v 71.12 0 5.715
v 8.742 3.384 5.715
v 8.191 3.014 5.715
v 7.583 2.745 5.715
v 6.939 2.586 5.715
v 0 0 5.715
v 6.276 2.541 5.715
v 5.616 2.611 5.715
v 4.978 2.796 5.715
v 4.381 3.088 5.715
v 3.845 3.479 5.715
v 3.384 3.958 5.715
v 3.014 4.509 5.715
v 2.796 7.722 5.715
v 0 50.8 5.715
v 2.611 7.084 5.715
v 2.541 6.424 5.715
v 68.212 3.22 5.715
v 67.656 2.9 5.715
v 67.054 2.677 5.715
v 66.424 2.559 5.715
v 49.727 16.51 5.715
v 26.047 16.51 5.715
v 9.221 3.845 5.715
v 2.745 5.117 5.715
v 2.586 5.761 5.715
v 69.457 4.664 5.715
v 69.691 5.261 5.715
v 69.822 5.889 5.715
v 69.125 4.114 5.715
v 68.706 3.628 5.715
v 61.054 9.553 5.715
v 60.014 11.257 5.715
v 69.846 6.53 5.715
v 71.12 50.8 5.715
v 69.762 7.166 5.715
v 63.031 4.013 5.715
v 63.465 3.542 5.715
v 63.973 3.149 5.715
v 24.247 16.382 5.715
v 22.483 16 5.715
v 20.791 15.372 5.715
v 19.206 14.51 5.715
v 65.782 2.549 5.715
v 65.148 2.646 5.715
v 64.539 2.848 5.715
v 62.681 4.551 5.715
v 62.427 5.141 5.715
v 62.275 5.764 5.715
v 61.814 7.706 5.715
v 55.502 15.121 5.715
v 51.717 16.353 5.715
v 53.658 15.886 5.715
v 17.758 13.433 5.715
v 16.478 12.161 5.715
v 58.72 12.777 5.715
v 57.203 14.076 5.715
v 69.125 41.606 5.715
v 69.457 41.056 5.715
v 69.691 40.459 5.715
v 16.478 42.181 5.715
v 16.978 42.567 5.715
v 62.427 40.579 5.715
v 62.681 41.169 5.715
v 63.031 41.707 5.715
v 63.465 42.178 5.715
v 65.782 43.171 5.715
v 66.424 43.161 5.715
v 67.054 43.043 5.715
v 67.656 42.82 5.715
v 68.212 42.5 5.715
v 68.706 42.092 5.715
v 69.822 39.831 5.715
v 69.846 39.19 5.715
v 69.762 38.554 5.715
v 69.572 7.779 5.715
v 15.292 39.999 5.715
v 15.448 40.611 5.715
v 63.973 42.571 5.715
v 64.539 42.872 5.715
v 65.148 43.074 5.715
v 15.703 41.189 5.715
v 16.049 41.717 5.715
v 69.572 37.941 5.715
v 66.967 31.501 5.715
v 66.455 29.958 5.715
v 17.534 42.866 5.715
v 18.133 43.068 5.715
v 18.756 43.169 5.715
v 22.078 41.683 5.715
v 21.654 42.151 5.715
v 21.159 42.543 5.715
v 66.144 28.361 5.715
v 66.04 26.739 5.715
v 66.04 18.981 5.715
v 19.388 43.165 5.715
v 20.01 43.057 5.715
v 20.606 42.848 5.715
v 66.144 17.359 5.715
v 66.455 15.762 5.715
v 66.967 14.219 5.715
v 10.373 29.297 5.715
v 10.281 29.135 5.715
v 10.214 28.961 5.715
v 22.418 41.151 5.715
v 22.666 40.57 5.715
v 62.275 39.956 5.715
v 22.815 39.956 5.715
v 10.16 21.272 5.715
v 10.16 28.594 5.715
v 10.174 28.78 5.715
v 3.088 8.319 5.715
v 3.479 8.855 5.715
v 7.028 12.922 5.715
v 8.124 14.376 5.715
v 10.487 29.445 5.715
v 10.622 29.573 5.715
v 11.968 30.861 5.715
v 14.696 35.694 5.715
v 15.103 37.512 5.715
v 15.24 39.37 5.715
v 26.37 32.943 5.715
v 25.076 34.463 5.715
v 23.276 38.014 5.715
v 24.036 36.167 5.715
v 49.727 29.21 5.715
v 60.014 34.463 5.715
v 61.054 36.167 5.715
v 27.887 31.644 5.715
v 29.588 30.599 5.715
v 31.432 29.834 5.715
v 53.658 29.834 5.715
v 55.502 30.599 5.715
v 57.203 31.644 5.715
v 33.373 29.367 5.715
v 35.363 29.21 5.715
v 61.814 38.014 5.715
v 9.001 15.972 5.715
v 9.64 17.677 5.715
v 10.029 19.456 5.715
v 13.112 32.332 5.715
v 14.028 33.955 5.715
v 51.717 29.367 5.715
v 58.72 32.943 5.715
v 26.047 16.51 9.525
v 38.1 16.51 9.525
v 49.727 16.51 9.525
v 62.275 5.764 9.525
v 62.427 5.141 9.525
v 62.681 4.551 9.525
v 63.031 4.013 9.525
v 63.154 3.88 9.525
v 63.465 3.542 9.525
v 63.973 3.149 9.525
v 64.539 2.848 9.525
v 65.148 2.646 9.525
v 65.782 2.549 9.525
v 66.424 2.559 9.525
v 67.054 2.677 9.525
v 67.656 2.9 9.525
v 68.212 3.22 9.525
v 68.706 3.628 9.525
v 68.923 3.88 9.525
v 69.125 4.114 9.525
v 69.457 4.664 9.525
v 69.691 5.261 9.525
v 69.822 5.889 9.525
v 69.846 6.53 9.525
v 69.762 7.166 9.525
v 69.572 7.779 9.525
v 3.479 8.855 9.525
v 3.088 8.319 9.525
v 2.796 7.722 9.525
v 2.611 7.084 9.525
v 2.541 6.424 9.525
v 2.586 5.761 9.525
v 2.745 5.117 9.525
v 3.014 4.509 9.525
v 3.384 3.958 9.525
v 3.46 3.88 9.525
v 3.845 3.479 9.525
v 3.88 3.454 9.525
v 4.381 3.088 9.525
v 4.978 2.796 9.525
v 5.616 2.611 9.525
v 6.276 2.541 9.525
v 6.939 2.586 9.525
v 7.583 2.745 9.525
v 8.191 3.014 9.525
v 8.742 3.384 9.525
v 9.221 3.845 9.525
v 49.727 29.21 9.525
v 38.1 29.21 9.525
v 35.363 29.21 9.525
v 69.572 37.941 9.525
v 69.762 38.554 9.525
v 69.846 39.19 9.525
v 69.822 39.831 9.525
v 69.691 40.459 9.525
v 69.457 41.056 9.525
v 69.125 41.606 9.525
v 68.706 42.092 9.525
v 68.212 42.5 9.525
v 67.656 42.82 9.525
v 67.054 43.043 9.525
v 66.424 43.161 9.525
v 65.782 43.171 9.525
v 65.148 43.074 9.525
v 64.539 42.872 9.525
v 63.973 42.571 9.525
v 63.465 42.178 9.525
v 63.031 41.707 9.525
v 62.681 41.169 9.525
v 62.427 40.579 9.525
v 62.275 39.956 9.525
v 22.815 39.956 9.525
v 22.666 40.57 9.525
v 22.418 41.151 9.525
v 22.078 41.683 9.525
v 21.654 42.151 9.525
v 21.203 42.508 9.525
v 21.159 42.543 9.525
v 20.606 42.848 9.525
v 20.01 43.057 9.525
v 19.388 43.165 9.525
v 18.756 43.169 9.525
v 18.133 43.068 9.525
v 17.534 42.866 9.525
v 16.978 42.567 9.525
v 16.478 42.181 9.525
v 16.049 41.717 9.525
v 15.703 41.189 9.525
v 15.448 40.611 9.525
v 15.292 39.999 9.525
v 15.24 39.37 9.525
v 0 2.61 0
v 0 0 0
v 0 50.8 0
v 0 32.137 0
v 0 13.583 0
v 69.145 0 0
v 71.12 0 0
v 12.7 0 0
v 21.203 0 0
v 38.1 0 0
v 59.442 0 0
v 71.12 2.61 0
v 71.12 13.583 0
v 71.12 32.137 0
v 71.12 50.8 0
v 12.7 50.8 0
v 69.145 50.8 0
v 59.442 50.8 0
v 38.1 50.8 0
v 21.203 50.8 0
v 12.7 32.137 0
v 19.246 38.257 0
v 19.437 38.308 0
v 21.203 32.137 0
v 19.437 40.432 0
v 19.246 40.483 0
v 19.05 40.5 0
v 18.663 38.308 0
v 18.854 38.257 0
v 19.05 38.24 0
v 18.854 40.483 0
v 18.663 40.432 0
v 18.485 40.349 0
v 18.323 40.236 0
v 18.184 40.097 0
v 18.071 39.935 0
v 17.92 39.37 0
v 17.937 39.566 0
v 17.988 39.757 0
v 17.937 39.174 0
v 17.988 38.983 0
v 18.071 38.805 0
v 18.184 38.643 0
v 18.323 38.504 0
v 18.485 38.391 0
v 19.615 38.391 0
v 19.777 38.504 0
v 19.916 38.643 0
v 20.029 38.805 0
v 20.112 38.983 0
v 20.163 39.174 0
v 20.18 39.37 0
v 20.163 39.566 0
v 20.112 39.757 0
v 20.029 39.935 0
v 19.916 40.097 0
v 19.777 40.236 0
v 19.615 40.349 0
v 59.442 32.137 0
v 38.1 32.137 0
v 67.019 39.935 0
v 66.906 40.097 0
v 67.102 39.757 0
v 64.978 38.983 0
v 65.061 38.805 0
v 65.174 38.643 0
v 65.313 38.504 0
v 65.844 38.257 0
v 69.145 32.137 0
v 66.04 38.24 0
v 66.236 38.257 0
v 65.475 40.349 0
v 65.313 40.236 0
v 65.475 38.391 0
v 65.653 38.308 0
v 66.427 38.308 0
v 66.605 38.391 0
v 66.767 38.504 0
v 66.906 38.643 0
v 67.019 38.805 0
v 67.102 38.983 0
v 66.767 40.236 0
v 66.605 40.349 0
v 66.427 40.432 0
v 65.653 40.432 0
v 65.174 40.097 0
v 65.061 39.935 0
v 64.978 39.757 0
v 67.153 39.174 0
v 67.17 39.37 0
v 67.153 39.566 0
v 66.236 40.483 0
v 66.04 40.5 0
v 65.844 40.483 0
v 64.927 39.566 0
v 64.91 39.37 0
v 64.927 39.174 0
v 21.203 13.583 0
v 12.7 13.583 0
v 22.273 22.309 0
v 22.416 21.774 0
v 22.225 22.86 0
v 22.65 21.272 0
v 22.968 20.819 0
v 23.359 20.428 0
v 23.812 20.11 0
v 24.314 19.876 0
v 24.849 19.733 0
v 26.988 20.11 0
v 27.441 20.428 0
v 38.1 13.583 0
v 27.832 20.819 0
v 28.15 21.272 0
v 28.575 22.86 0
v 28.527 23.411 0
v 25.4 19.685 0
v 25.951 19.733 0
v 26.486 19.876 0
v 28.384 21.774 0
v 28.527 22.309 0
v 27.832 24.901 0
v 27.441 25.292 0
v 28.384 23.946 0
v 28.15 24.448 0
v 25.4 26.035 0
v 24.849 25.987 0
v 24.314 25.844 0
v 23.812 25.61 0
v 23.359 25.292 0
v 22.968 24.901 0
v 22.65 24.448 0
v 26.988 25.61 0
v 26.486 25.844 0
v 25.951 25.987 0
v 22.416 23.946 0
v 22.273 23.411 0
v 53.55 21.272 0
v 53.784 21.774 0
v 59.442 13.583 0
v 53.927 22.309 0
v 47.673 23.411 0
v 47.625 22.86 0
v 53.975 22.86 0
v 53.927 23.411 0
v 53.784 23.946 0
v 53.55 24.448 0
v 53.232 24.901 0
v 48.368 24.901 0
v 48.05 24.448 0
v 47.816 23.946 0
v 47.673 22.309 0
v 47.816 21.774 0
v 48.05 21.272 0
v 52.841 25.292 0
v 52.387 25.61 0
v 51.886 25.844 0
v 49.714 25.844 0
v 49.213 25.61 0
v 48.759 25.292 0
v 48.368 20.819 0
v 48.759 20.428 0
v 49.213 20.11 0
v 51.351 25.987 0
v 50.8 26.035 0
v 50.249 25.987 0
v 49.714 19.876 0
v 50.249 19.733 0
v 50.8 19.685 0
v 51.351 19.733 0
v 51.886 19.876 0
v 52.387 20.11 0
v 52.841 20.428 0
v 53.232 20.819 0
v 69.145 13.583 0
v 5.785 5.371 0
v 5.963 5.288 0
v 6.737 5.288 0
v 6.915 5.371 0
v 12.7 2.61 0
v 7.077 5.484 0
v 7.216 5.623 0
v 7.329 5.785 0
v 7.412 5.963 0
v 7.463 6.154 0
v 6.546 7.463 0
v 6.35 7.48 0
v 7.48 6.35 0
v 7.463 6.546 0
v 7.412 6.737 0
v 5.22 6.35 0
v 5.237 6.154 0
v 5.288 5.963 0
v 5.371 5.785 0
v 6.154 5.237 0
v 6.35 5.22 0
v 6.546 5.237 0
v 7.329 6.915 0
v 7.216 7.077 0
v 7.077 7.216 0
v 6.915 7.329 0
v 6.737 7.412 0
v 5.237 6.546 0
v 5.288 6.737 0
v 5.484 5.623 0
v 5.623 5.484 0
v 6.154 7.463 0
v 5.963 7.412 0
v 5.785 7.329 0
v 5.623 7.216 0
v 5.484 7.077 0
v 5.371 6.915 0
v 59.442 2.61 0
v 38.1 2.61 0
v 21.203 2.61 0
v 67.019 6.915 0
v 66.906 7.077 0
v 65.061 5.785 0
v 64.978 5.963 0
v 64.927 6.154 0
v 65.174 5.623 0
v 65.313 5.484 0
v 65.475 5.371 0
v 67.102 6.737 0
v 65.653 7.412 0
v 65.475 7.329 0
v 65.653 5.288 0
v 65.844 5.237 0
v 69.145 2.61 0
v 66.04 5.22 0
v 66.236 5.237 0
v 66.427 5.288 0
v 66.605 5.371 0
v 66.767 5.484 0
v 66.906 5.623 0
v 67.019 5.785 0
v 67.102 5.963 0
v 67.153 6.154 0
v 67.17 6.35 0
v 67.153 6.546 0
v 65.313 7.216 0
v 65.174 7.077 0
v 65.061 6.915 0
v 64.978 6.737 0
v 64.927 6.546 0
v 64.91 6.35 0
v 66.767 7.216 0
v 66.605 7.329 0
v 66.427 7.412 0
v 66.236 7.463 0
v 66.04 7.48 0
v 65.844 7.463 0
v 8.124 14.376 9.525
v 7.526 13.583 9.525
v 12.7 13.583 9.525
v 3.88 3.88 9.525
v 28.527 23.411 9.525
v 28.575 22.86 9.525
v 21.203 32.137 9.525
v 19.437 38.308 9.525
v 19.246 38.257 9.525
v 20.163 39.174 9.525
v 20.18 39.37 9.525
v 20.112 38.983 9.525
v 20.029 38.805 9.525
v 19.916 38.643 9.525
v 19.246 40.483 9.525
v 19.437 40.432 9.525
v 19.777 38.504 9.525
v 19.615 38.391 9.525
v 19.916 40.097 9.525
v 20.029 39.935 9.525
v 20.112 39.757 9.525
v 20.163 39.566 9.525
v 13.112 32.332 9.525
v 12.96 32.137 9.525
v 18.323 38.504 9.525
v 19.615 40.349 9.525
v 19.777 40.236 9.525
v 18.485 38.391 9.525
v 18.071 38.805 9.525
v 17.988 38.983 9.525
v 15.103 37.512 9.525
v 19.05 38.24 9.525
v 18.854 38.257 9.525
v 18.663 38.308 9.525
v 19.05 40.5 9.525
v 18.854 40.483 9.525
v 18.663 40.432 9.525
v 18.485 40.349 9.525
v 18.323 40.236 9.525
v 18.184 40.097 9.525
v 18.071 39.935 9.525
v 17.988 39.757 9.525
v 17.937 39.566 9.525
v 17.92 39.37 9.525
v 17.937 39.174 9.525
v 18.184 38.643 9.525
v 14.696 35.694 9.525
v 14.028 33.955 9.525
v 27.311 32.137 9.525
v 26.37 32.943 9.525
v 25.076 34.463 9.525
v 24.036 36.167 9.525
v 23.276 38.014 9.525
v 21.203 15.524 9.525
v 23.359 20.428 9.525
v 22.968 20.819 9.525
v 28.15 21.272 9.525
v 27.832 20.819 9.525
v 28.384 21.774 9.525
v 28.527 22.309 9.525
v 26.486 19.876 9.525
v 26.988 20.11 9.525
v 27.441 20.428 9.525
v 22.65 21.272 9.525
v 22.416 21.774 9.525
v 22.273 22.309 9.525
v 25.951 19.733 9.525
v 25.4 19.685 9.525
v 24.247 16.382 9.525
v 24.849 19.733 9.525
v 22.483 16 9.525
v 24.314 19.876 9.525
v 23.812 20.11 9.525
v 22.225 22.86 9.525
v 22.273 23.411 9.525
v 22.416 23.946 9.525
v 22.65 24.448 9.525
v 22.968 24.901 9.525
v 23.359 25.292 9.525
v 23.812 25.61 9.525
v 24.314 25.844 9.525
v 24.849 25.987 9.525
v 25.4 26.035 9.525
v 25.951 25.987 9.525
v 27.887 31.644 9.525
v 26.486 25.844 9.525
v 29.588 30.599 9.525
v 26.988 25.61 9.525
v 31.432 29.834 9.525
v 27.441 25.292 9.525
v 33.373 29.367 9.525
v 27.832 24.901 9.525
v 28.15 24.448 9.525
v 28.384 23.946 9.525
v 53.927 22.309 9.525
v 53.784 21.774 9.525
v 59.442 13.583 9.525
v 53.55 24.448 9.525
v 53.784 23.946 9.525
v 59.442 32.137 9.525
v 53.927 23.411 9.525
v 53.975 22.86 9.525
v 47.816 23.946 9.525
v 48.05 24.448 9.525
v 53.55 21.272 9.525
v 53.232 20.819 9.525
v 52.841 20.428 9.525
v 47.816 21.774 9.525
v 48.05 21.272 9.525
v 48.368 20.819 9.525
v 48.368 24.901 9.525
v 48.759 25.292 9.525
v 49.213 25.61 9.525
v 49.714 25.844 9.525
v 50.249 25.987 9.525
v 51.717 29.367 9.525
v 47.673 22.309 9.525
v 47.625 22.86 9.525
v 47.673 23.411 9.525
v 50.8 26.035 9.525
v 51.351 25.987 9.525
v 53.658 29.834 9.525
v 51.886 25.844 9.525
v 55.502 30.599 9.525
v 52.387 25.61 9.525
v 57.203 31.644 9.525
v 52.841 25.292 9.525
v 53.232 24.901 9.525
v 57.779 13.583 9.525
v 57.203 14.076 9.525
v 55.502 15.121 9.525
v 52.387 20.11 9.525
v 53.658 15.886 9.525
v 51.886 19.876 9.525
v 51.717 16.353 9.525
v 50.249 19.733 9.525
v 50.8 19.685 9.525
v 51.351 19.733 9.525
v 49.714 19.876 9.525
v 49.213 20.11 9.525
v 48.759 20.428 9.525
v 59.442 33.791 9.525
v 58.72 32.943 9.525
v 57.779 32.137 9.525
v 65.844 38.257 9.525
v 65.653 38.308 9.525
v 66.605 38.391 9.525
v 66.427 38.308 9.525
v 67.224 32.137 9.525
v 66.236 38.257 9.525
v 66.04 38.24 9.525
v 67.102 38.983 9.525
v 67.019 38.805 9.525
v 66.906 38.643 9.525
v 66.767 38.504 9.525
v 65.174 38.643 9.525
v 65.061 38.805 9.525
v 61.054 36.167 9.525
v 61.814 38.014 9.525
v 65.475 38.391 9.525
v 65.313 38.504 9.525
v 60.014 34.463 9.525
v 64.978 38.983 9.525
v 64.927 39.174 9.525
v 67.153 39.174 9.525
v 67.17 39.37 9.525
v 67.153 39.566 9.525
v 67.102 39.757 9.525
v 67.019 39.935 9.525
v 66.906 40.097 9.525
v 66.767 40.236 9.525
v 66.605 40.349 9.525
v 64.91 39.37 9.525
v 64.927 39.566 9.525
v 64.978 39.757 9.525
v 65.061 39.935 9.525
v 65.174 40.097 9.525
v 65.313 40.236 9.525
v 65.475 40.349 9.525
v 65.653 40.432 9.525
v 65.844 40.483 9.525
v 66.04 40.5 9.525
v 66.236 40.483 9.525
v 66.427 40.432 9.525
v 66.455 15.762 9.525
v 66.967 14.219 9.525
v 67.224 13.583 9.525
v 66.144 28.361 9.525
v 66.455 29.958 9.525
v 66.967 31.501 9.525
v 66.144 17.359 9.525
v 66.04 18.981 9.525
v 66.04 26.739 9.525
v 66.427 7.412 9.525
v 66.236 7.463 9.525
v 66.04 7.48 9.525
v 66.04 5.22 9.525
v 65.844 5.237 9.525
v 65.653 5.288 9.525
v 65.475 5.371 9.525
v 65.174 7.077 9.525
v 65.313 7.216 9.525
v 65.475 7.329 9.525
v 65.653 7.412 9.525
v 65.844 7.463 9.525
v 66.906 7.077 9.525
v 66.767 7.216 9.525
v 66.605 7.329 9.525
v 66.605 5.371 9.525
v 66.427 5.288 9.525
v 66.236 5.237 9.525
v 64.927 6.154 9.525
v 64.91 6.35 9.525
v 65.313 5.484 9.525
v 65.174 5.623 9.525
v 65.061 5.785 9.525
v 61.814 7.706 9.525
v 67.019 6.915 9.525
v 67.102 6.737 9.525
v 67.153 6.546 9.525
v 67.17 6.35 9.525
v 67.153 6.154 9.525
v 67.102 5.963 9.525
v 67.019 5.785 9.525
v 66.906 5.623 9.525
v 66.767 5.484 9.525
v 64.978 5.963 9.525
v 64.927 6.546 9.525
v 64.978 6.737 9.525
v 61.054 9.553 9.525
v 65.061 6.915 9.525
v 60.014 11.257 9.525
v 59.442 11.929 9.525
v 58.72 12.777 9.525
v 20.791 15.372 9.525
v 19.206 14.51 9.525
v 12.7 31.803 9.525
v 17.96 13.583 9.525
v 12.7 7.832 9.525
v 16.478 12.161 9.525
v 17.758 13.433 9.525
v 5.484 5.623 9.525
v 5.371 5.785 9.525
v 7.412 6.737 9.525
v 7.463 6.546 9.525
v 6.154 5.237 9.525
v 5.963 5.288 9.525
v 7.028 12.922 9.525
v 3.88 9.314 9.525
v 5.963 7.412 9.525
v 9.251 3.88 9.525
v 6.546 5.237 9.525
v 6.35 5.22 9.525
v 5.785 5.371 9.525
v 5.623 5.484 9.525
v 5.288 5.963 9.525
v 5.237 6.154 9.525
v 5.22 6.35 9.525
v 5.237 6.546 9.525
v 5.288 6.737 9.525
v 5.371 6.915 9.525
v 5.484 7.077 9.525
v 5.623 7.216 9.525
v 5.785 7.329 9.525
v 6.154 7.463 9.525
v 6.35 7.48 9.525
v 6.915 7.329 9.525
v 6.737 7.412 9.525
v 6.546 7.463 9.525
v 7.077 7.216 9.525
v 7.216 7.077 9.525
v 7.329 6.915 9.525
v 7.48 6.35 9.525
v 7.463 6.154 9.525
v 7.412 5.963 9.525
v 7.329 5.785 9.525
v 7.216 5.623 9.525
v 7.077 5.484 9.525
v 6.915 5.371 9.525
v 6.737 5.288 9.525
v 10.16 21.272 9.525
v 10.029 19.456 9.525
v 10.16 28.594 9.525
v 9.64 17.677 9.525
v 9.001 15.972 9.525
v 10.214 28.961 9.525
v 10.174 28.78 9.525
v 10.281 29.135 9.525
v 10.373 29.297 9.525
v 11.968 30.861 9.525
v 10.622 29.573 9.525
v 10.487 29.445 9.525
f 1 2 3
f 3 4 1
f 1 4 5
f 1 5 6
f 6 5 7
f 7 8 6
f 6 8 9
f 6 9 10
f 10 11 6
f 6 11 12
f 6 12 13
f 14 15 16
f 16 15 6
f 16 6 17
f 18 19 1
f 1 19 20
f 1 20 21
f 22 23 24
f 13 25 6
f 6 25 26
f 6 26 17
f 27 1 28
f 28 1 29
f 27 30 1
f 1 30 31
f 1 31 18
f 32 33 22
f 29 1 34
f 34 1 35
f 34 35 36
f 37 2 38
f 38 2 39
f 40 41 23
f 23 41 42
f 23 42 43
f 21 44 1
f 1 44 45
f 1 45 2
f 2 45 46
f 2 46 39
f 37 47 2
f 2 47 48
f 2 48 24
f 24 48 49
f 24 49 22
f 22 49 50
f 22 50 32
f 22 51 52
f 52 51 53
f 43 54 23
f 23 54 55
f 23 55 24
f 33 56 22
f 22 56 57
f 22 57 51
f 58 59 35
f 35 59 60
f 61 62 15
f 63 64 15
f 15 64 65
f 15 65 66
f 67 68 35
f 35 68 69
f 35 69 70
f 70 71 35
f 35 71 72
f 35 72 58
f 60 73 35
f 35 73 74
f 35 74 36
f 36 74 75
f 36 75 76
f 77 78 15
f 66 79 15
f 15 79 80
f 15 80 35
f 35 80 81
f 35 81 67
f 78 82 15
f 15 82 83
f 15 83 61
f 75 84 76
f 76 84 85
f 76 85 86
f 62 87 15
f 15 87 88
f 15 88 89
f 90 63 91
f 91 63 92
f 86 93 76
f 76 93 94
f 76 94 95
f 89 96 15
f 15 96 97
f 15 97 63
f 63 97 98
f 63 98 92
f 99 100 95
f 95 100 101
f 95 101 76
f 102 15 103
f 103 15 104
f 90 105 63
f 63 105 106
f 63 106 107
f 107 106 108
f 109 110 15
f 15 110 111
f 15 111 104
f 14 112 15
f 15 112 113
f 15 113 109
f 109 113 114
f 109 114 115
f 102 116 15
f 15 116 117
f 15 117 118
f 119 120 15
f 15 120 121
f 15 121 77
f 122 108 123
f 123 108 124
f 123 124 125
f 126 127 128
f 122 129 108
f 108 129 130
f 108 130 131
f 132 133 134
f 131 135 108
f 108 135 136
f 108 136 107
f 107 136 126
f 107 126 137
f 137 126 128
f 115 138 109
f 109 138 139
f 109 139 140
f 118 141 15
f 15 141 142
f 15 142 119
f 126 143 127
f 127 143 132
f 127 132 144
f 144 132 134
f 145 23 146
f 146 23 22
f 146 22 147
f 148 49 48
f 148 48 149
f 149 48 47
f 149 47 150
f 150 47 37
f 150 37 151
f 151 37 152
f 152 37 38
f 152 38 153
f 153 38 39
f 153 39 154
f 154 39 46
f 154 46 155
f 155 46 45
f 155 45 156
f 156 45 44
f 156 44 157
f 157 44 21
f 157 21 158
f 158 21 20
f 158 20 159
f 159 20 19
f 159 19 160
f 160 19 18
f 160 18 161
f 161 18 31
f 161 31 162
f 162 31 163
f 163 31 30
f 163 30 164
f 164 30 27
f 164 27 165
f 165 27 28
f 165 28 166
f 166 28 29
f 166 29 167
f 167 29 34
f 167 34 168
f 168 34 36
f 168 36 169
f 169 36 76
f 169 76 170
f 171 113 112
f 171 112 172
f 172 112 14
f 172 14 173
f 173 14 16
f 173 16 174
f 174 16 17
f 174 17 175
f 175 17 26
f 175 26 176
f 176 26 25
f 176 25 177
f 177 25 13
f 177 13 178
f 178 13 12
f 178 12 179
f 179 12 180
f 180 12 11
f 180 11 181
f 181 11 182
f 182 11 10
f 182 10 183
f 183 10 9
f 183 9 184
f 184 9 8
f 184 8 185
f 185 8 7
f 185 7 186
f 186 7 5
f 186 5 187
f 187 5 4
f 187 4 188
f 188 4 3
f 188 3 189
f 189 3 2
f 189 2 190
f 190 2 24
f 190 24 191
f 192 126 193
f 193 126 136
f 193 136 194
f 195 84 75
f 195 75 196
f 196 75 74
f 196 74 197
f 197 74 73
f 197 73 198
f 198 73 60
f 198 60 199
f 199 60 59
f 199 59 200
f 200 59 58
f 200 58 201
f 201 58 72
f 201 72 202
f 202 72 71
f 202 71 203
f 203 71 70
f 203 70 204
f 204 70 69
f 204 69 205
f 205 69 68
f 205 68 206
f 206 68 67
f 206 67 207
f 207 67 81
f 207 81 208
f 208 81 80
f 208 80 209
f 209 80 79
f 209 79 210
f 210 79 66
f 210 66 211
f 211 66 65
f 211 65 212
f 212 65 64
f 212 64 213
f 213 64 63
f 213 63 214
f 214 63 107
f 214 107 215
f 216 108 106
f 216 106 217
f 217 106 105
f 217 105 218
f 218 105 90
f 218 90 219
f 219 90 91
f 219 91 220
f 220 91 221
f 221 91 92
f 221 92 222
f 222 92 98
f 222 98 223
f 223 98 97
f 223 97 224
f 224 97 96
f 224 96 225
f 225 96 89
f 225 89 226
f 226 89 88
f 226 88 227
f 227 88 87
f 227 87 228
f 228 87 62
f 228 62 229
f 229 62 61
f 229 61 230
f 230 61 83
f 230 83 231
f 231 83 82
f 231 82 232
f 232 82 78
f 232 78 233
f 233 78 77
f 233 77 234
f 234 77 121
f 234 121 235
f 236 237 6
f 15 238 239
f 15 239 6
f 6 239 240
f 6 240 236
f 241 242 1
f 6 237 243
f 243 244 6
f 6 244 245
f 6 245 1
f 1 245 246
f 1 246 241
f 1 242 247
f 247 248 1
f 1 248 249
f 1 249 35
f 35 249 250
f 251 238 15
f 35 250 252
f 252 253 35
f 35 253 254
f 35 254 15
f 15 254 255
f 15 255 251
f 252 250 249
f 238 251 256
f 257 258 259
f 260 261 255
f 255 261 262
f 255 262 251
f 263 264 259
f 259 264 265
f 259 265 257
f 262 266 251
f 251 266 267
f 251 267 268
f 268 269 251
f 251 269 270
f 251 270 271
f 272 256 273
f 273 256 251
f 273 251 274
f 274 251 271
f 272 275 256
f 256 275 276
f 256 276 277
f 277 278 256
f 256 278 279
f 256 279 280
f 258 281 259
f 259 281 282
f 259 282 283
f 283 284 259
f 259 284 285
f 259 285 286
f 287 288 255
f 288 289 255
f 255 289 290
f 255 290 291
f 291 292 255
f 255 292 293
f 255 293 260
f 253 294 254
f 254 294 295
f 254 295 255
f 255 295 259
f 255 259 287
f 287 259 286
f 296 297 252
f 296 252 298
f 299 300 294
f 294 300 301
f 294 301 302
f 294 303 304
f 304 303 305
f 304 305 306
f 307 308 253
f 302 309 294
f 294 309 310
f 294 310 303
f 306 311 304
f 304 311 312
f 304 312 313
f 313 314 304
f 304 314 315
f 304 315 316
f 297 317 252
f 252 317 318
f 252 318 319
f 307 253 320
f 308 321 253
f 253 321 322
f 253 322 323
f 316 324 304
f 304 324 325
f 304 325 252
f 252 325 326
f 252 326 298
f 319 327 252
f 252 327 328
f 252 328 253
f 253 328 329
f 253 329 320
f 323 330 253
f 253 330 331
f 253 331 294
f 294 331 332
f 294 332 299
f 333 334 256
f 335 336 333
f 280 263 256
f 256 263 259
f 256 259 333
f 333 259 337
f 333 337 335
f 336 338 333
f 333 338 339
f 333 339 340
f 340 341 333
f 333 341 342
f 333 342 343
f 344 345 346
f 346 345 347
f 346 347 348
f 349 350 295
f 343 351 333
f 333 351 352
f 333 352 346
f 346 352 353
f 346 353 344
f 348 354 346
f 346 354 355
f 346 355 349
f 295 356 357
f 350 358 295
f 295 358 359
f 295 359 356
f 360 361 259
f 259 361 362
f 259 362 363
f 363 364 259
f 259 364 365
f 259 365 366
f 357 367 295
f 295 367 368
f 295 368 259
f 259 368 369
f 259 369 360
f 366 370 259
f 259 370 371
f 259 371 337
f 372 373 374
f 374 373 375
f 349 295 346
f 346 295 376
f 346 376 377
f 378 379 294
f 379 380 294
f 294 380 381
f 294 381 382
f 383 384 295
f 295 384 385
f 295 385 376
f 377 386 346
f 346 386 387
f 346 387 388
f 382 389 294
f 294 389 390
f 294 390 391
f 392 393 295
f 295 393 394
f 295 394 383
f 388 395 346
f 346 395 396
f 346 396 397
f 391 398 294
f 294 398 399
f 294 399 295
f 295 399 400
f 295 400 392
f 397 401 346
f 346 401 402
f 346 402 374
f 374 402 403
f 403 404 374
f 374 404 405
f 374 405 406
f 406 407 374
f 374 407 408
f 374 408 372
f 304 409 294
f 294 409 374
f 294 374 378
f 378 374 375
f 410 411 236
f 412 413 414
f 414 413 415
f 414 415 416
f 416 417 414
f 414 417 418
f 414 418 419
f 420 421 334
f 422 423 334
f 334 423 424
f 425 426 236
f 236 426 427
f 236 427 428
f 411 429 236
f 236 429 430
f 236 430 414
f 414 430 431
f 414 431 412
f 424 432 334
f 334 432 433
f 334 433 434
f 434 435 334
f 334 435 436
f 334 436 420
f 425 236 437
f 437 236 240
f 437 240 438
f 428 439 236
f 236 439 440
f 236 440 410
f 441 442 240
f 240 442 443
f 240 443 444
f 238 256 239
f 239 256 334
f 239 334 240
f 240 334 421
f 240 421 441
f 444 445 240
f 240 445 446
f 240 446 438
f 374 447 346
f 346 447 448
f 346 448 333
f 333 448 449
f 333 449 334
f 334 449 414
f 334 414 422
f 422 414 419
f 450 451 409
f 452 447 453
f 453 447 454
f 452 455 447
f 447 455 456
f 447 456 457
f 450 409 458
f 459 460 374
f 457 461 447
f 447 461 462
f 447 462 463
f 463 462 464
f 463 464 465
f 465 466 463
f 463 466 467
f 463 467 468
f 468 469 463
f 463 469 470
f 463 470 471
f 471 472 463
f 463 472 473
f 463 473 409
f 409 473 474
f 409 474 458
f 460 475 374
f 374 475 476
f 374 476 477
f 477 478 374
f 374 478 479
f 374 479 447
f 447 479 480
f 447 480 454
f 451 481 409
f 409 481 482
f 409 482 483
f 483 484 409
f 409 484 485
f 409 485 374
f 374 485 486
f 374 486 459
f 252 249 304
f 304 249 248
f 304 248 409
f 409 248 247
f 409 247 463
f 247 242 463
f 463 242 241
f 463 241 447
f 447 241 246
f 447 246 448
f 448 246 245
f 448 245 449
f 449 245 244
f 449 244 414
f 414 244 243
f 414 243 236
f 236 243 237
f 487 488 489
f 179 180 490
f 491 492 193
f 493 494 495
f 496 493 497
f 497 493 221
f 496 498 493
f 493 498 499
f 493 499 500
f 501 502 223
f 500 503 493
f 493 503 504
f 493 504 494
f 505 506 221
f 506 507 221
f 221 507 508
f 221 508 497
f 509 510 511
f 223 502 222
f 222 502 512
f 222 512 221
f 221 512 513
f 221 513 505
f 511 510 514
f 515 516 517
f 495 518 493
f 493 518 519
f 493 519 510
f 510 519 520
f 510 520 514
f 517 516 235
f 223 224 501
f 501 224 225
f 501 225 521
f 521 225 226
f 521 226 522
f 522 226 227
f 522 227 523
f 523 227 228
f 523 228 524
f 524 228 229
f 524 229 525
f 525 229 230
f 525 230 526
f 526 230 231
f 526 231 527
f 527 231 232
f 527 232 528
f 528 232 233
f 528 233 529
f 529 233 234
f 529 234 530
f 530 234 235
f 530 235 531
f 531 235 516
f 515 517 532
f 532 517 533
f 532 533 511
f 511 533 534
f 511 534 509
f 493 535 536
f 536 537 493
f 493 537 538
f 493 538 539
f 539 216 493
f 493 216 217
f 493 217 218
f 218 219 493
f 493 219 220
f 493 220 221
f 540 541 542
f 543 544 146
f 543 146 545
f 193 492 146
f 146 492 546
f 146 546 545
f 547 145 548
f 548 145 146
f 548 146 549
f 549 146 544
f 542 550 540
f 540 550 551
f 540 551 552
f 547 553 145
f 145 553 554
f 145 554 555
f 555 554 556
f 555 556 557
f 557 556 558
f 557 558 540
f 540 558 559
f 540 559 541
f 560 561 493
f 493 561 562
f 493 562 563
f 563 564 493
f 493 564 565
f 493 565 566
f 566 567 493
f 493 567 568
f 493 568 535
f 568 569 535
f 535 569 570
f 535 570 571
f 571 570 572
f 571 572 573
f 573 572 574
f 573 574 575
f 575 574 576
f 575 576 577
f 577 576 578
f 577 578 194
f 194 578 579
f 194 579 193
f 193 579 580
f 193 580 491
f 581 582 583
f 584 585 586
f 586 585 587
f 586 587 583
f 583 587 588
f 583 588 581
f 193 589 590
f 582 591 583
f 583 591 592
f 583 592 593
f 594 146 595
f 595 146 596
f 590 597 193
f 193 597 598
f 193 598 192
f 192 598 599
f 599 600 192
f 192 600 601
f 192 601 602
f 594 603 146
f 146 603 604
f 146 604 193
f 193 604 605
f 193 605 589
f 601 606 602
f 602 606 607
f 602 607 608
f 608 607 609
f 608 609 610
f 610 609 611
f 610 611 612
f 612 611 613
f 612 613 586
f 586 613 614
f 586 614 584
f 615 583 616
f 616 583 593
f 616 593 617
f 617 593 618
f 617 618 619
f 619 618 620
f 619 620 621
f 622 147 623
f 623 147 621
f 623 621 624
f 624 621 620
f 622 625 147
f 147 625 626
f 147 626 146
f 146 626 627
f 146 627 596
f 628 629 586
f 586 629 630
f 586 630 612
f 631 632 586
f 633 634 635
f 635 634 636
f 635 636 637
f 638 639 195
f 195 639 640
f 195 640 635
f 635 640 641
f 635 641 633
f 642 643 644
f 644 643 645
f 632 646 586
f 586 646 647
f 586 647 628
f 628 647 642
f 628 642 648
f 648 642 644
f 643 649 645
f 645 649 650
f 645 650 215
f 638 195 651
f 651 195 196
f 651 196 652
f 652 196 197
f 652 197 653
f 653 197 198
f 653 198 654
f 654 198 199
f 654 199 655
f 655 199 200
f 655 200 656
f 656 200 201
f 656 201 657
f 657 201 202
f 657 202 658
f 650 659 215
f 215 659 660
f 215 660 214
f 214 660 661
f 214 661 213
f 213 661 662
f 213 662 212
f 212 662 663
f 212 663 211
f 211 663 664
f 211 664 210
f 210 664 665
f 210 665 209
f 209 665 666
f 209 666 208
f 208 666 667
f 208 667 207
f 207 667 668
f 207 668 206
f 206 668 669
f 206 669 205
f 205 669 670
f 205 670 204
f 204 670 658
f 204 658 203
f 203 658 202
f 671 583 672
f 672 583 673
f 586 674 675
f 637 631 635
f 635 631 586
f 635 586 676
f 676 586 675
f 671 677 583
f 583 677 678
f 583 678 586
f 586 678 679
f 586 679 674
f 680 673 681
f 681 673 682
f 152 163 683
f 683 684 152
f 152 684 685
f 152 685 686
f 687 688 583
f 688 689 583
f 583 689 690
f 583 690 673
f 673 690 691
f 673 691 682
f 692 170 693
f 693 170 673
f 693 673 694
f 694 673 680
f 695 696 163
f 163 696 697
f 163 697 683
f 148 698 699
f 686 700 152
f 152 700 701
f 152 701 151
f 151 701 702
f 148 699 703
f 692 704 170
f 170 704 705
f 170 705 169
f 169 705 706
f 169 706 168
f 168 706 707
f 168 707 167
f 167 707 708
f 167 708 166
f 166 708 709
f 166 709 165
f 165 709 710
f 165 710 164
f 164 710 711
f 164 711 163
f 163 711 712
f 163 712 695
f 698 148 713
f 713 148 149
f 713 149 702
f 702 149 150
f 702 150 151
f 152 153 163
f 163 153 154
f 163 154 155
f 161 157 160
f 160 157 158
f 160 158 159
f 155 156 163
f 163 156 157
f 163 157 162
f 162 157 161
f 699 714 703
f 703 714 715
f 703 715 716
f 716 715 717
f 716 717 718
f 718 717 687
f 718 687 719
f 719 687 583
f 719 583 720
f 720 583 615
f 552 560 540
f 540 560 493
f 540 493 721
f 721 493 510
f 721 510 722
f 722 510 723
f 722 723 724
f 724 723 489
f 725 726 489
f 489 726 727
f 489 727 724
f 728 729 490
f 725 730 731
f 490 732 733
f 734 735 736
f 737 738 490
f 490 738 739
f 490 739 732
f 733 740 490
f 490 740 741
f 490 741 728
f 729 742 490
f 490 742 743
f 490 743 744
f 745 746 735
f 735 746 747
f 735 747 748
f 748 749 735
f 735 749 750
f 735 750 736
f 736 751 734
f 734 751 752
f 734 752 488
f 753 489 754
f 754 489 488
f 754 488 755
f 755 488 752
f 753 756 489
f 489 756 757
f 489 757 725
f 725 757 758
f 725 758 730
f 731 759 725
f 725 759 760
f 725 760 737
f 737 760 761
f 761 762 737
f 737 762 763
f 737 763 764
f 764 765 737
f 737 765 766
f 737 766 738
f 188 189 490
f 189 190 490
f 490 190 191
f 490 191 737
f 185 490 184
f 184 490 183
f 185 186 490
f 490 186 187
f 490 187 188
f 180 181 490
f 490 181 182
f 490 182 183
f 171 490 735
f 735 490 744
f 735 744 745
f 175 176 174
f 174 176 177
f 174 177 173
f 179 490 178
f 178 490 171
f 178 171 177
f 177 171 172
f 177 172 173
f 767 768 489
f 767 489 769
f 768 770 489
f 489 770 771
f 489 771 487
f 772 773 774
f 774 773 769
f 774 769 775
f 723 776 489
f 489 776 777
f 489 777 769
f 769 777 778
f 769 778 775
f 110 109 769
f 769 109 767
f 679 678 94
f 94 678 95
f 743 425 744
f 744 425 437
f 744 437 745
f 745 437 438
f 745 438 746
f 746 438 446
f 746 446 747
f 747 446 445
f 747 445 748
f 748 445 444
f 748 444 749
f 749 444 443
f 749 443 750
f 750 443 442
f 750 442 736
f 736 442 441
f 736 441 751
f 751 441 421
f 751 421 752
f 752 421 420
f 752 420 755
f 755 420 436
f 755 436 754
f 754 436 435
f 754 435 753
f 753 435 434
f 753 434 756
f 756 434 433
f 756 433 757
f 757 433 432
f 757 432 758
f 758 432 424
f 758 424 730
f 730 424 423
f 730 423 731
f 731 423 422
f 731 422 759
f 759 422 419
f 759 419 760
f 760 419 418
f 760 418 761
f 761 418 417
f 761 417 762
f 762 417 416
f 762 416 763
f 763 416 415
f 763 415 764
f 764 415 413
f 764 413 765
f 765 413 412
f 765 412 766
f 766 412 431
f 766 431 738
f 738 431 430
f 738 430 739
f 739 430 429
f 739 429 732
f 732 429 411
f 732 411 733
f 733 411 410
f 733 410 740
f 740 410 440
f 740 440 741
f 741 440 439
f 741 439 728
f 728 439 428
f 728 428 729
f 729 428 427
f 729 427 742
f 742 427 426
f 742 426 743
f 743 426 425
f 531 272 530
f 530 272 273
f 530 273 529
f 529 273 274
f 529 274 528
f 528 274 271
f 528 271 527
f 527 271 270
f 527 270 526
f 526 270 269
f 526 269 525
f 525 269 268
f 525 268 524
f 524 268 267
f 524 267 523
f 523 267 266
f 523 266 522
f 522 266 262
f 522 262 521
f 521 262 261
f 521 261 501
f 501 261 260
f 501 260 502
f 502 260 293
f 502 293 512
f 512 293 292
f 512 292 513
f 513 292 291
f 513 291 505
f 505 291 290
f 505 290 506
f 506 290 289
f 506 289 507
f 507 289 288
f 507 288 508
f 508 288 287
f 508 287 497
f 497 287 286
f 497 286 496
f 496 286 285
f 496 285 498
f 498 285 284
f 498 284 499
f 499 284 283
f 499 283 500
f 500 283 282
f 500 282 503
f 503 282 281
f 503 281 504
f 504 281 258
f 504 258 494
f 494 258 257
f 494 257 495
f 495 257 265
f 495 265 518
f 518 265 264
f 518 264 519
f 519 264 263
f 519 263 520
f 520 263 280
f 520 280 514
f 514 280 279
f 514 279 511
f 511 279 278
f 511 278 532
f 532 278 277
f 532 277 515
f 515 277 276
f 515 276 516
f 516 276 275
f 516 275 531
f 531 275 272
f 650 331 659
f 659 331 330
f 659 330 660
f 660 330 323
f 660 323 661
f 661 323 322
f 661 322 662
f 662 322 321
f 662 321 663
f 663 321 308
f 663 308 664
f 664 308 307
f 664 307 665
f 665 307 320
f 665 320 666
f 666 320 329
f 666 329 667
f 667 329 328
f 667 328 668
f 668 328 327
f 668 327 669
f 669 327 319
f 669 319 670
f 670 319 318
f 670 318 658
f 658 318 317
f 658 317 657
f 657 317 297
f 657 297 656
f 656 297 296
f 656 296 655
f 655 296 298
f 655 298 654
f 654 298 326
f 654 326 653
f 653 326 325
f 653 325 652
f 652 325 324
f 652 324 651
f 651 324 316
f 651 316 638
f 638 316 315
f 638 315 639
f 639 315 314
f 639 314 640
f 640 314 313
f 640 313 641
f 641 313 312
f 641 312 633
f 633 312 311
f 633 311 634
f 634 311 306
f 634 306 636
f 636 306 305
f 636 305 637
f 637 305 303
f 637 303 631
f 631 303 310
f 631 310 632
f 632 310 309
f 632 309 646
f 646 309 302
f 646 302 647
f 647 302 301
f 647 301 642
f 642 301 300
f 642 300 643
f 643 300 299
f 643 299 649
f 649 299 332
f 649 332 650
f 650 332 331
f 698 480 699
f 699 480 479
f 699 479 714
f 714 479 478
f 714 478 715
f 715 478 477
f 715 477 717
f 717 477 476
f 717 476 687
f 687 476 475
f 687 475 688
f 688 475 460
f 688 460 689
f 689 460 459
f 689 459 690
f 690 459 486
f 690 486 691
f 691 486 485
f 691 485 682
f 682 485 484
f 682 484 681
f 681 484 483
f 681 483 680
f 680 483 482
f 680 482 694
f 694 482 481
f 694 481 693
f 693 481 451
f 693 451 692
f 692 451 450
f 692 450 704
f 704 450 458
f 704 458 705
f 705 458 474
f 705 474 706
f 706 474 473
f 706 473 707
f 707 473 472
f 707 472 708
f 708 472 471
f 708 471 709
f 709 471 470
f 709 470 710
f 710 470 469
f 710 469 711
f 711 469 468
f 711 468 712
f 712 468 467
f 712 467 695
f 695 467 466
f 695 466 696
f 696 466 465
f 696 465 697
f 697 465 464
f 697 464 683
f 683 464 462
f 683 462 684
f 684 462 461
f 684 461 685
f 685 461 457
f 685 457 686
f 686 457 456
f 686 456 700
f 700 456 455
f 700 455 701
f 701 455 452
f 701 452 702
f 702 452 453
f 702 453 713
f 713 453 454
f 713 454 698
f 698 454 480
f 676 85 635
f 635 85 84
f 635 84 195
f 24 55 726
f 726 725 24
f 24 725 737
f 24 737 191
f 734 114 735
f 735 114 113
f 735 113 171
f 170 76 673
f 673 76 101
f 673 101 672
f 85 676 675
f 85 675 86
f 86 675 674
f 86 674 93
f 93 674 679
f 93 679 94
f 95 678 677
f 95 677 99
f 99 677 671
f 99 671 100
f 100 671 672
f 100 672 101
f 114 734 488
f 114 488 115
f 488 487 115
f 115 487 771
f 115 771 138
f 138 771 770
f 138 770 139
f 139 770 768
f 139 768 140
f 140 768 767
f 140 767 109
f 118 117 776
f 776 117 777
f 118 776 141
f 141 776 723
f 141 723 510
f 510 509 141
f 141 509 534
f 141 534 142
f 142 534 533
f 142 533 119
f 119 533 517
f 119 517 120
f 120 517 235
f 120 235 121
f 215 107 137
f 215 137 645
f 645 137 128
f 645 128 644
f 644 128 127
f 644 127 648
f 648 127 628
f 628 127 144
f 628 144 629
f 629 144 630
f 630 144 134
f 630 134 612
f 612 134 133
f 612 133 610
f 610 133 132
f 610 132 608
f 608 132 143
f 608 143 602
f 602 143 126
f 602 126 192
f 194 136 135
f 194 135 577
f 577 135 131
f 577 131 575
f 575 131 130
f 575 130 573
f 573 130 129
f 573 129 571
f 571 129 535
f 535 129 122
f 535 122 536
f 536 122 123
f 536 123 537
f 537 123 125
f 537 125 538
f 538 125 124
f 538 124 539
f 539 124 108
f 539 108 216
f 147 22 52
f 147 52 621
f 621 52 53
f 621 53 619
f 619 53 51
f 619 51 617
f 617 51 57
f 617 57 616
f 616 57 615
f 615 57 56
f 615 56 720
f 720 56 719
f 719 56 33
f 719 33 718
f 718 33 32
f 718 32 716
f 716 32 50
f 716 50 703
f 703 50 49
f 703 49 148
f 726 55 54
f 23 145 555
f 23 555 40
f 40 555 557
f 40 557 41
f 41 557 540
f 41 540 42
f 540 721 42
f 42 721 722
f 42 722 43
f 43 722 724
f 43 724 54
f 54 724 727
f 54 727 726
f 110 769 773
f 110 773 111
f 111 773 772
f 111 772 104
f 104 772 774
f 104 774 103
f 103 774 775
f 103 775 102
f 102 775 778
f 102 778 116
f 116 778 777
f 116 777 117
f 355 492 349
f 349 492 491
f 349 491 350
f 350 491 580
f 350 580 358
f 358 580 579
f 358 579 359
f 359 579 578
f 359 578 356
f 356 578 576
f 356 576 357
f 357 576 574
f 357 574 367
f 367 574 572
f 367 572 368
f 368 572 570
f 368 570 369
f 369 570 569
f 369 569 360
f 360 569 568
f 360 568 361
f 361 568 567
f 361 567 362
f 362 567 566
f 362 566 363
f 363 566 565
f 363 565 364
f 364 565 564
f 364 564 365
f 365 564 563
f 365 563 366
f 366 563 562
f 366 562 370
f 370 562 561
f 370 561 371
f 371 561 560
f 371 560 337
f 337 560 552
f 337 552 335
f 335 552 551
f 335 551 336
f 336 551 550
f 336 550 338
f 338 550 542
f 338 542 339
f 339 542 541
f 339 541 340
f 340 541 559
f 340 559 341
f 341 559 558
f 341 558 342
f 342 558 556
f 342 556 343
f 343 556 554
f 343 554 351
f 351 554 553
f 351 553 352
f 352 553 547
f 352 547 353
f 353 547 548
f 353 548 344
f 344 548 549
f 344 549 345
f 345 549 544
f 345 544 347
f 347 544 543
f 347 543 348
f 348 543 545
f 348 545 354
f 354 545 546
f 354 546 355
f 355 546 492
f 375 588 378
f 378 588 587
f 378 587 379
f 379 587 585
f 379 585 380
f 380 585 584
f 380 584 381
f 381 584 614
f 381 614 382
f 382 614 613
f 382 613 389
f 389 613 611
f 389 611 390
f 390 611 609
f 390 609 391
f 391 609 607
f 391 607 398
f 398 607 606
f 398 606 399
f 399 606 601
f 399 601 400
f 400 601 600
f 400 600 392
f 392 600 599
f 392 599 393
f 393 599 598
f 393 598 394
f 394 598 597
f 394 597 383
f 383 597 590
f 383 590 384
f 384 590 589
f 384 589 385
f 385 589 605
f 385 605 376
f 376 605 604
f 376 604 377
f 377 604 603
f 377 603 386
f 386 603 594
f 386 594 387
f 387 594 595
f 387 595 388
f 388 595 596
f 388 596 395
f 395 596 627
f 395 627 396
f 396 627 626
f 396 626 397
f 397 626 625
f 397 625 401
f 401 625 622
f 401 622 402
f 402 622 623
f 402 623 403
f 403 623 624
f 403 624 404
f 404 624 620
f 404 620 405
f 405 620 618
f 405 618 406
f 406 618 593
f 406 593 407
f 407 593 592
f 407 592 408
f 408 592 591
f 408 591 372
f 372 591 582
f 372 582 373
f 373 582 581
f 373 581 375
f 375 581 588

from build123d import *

# Parameters (mm, degrees)
SKETCH1_W               = 71.12
SKETCH1_H               = 50.8
BOSS_EXTRUDE1_DEPTH     = 5.715
SKETCH3_R               = 3.81
SKETCH3_W               = 55.88
SKETCH3_H               = 12.7
BOSS_EXTRUDE2_DEPTH     = 3.81
F_4_40_TAPPED_HOLE1_D   = 2.2606
BOSS_EXTRUDE4_DEPTH     = 3.81
FILLET1_R               = 12.7
FILLET2_R               = 1.27
CUT_EXTRUDE1_DEPTH      = 2.54
CUT_EXTRUDE1_DEPTH_BACK = 88.917120204
SKETCH9_R               = 3.175


with BuildPart() as part:
    # Sketch1 → Boss-Extrude1 (new body)
    with BuildSketch(Plane.XY):
        with Locations((35.56, 25.4)):
            Rectangle(SKETCH1_W, SKETCH1_H)
    extrude(amount=BOSS_EXTRUDE1_DEPTH)

    # Sketch3 → Boss-Extrude2 (add)
    with BuildSketch(Plane.XY.offset(5.715)):
        with Locations(Location((19.05, 39.37, 0), (0, 0, 180))):
            Circle(SKETCH3_R)
        with Locations(Location((66.04, 39.37, 0), (0, 0, 180))):
            Circle(SKETCH3_R)
        with Locations(Location((6.35, 6.35, 0), (0, 0, 180))):
            Circle(SKETCH3_R)
        with Locations(Location((66.04, 6.35, 0), (0, 0, 180))):
            Circle(SKETCH3_R)
        with Locations((38.1, 22.86)):
            Rectangle(SKETCH3_W, SKETCH3_H)
    extrude(amount=BOSS_EXTRUDE2_DEPTH)

    # #4-40 Tapped Hole1 (through all)
    with Locations(Plane(origin=(0, 0, 0), x_dir=(-1, 0, 0), z_dir=(0, 0, -1))):
        with Locations((-66.04, 6.35), (-66.04, 39.37), (-19.05, 39.37), (-6.35, 6.35)):
            Hole(F_4_40_TAPPED_HOLE1_D / 2)

    # Sketch7 → Boss-Extrude4 (add)
    with BuildSketch(Plane.XY.offset(5.715)):
        with BuildLine():
            Line((15.24, 39.37), (15.24, 29.21))
            Line((15.24, 29.21), (22.86, 29.21))
            Line((22.86, 29.21), (22.86, 39.37))
            ThreePointArc((22.86, 39.37), (19.05, 35.56), (15.24, 39.37))
        make_face()
        with BuildLine():
            Line((62.23, 39.37), (62.23, 29.21))
            Line((62.23, 29.21), (66.04, 29.21))
            Line((66.04, 29.21), (69.571964529, 37.94125))
            ThreePointArc((69.571964529, 37.94125), (65.31222423, 35.630154759), (62.23, 39.37))
        make_face()
        with BuildLine():
            Line((3.479452055, 8.855205479), (10.16, 16.51))
            Line((10.16, 16.51), (20.273818182, 16.51))
            Line((20.273818182, 16.51), (9.220547945, 3.844794521))
            ThreePointArc((9.220547945, 3.844794521), (8.855205479, 9.220547945), (3.479452055, 8.855205479))
        make_face()
        with BuildLine():
            Line((62.23, 6.35), (62.23, 16.51))
            Line((62.23, 16.51), (66.04, 16.51))
            Line((66.04, 16.51), (69.571964529, 7.77875))
            ThreePointArc((69.571964529, 7.77875), (65.31222423, 10.089845241), (62.23, 6.35))
        make_face()
    extrude(amount=BOSS_EXTRUDE4_DEPTH)

    # Fillet1
    # the kernel refuses this fillet: 12.7 mm, written as the material it adds along each edge
    with BuildSketch(Plane(origin=(10.16, 16.51, -6.19125), x_dir=(0, 1, 0), z_dir=(0, 0, 1))) as fillet1_piece_1_section:
        with BuildLine():
            CenterArc((FILLET1_R * 0.375, FILLET1_R), FILLET1_R, 228.887909561, 41.112090439)
            Line((-FILLET1_R * 0.282534246575, FILLET1_R * 0.246575342466), (0, 0))
            Line((0, 0), (FILLET1_R * 0.375, 0))
        make_face()
    fillet1_piece_1 = extrude(amount=15.71625, mode=Mode.PRIVATE)
    fillet1_piece_1 = split(fillet1_piece_1, bisect_by=Plane(origin=(9.519597121, 16.75015108, 0), z_dir=(0, 0, 1)), keep=Keep.TOP, mode=Mode.PRIVATE)
    add(fillet1_piece_1)
    with BuildSketch(Plane(origin=(15.24, 29.21, -19.685), x_dir=(0, 1, 0), z_dir=(0, 0, 1))) as fillet1_piece_2_section:
        with BuildLine():
            CenterArc((10.16, 12.7), FILLET1_R, 216.869897646, 53.130102354)
            Line((0, 5.08), (-1.016, 4.318))
            ThreePointArc((-1.016, 4.318), (-1.27, 2.54), (-1.27, 0))
            Line((-1.27, 0), (0, -1.27))
            Line((0, -1.27), (10.16, -1.27))
            Line((10.16, -1.27), (10.16, 0))
        make_face()
    fillet1_piece_2 = extrude(amount=29.21, mode=Mode.PRIVATE)
    fillet1_piece_2 = split(fillet1_piece_2, bisect_by=Plane(origin=(13.921943776, 33.679028112, 0), z_dir=(0, 0, 1)), keep=Keep.TOP, mode=Mode.PRIVATE)
    add(fillet1_piece_2)
    with BuildSketch(Plane(origin=(62.23, 29.21, -25.543613437), x_dir=(0.0042208920727075105, 0.9999910919953791, 0), z_dir=(0, 0, 1))) as fillet1_piece_3_section:
        with BuildLine():
            CenterArc((12.647111175, 12.556939323), FILLET1_R, 180.24184002, 81.150116902)
            Line((-0.052775693, 12.503333994), (-1.32276438, 12.497973461))
            Line((-1.32276438, 12.497973461), (-1.269988687, -0.005360533))
            Line((-1.269988687, -0.005360533), (0.005360533, -1.269988687))
            ThreePointArc((0.005360533, -1.269988687), (10.165270028, -1.227104423), (10.556163414, -1.255693932))
            Line((10.556163414, -1.255693932), (10.746249574, 0))
        make_face()
    fillet1_piece_3 = extrude(amount=35.068613437, mode=Mode.PRIVATE)
    fillet1_piece_3 = split(fillet1_piece_3, bisect_by=Plane(origin=(58.003710065, 32.244364844, 0), z_dir=(0, 0, 1)), keep=Keep.TOP, mode=Mode.PRIVATE)
    add(fillet1_piece_3)
    with BuildSketch(Plane(origin=(22.86, 29.21, -25.543613437), x_dir=(1, 0, 0), z_dir=(0, 0, 1))) as fillet1_piece_4_section:
        with BuildLine():
            CenterArc((12.503445375, 12.7), FILLET1_R, 188.849883098, 81.150116902)
            Line((-0.04535876, 10.746153846), (-1.300239173, 10.550769231))
            ThreePointArc((-1.300239173, 10.550769231), (-1.27, 10.16), (-1.27, 0))
            Line((-1.27, 0), (0, -1.27))
            Line((0, -1.27), (12.503445375, -1.27))
            Line((12.503445375, -1.27), (12.503445375, 0))
        make_face()
    fillet1_piece_4 = extrude(amount=35.068613437, mode=Mode.PRIVATE)
    fillet1_piece_4 = split(fillet1_piece_4, bisect_by=Plane(origin=(27.086289935, 32.244364844, 0), z_dir=(0, 0, 1)), keep=Keep.TOP, mode=Mode.PRIVATE)
    add(fillet1_piece_4)
    with BuildSketch(Plane(origin=(62.23, 16.51, -25.543613437), x_dir=(-1, 0, 0), z_dir=(0, 0, 1))) as fillet1_piece_5_section:
        with BuildLine():
            CenterArc((12.503445375, 12.7), FILLET1_R, 188.849883098, 81.150116902)
            Line((-0.04535876, 10.746153846), (-1.300239173, 10.550769231))
            ThreePointArc((-1.300239173, 10.550769231), (-1.27, 10.16), (-1.27, 0))
            Line((-1.27, 0), (0, -1.27))
            Line((0, -1.27), (12.503445375, -1.27))
            Line((12.503445375, -1.27), (12.503445375, 0))
        make_face()
    fillet1_piece_5 = extrude(amount=35.068613437, mode=Mode.PRIVATE)
    fillet1_piece_5 = split(fillet1_piece_5, bisect_by=Plane(origin=(58.003710065, 13.475635156, 0), z_dir=(0, 0, 1)), keep=Keep.TOP, mode=Mode.PRIVATE)
    add(fillet1_piece_5)
    with BuildSketch(Plane(origin=(20.273818182, 16.51, -8.716818182), x_dir=(-0.6575342465753422, -0.7534246575342469, 0), z_dir=(0, 0, 1))) as fillet1_piece_6_section:
        with BuildLine():
            CenterArc((FILLET1_R * 0.454545454545, FILLET1_R), FILLET1_R, 221.112090439, 48.887909561)
            Line((-FILLET1_R * 0.298879202989, FILLET1_R * 0.342465753425), (0, 0))
            Line((0, 0), (FILLET1_R * 0.454545454545, 0))
        make_face()
    fillet1_piece_6 = extrude(amount=18.241818182, mode=Mode.PRIVATE)
    fillet1_piece_6 = split(fillet1_piece_6, bisect_by=Plane(origin=(20.68190581, 15.612207219, 0), z_dir=(0, 0, 1)), keep=Keep.TOP, mode=Mode.PRIVATE)
    add(fillet1_piece_6)
    with BuildSketch(Plane(origin=(66.04, 29.21, -0.463566012), x_dir=(0, -1, 0), z_dir=(0, 0, 1))) as fillet1_piece_7_section:
        with BuildLine():
            CenterArc((FILLET1_R * 0.194600504301, FILLET1_R), FILLET1_R, 247.975687163, 22.024312837)
            Line((-FILLET1_R * 0.180399495699, FILLET1_R * 0.072975189113), (0, 0))
            Line((0, 0), (FILLET1_R * 0.194600504301, 0))
        make_face()
    fillet1_piece_7 = extrude(amount=9.988566012, mode=Mode.PRIVATE)
    fillet1_piece_7 = split(fillet1_piece_7, bisect_by=Plane(origin=(66.226537553, 29.173699698, 0), z_dir=(0, 0, 1)), keep=Keep.TOP, mode=Mode.PRIVATE)
    add(fillet1_piece_7)
    with BuildSketch(Plane(origin=(66.04, 16.51, -0.463566012), x_dir=(0.37499999999999534, -0.9270248108869598, 0), z_dir=(0, 0, 1))) as fillet1_piece_8_section:
        with BuildLine():
            CenterArc((FILLET1_R * 0.194600504301, FILLET1_R), FILLET1_R, 247.975687163, 22.024312837)
            Line((-FILLET1_R * 0.180399495699, FILLET1_R * 0.072975189113), (0, 0))
            Line((0, 0), (FILLET1_R * 0.194600504301, 0))
        make_face()
    fillet1_piece_8 = extrude(amount=9.988566012, mode=Mode.PRIVATE)
    fillet1_piece_8 = split(fillet1_piece_8, bisect_by=Plane(origin=(66.226537553, 16.546300302, 0), z_dir=(0, 0, 1)), keep=Keep.TOP, mode=Mode.PRIVATE)
    add(fillet1_piece_8)

    # Fillet2
    fillet2_edges = [part.edges().sort_by_distance(p)[0] for p in [
        (10.16, 29.21, 7.62),
    ]]
    fillet(fillet2_edges, radius=FILLET2_R)

    # Sketch9 → Cut-Extrude1 (cut, two sides: drawn at the far end of the back side and taken through both)
    with BuildSketch(Plane.XY.offset(9.525).offset(-CUT_EXTRUDE1_DEPTH_BACK)):
        with Locations((25.4, 22.86)):
            Circle(SKETCH9_R)
        with Locations((50.8, 22.86)):
            Circle(SKETCH9_R)
    extrude(amount=CUT_EXTRUDE1_DEPTH + CUT_EXTRUDE1_DEPTH_BACK, mode=Mode.SUBTRACT)


solid = part.part
